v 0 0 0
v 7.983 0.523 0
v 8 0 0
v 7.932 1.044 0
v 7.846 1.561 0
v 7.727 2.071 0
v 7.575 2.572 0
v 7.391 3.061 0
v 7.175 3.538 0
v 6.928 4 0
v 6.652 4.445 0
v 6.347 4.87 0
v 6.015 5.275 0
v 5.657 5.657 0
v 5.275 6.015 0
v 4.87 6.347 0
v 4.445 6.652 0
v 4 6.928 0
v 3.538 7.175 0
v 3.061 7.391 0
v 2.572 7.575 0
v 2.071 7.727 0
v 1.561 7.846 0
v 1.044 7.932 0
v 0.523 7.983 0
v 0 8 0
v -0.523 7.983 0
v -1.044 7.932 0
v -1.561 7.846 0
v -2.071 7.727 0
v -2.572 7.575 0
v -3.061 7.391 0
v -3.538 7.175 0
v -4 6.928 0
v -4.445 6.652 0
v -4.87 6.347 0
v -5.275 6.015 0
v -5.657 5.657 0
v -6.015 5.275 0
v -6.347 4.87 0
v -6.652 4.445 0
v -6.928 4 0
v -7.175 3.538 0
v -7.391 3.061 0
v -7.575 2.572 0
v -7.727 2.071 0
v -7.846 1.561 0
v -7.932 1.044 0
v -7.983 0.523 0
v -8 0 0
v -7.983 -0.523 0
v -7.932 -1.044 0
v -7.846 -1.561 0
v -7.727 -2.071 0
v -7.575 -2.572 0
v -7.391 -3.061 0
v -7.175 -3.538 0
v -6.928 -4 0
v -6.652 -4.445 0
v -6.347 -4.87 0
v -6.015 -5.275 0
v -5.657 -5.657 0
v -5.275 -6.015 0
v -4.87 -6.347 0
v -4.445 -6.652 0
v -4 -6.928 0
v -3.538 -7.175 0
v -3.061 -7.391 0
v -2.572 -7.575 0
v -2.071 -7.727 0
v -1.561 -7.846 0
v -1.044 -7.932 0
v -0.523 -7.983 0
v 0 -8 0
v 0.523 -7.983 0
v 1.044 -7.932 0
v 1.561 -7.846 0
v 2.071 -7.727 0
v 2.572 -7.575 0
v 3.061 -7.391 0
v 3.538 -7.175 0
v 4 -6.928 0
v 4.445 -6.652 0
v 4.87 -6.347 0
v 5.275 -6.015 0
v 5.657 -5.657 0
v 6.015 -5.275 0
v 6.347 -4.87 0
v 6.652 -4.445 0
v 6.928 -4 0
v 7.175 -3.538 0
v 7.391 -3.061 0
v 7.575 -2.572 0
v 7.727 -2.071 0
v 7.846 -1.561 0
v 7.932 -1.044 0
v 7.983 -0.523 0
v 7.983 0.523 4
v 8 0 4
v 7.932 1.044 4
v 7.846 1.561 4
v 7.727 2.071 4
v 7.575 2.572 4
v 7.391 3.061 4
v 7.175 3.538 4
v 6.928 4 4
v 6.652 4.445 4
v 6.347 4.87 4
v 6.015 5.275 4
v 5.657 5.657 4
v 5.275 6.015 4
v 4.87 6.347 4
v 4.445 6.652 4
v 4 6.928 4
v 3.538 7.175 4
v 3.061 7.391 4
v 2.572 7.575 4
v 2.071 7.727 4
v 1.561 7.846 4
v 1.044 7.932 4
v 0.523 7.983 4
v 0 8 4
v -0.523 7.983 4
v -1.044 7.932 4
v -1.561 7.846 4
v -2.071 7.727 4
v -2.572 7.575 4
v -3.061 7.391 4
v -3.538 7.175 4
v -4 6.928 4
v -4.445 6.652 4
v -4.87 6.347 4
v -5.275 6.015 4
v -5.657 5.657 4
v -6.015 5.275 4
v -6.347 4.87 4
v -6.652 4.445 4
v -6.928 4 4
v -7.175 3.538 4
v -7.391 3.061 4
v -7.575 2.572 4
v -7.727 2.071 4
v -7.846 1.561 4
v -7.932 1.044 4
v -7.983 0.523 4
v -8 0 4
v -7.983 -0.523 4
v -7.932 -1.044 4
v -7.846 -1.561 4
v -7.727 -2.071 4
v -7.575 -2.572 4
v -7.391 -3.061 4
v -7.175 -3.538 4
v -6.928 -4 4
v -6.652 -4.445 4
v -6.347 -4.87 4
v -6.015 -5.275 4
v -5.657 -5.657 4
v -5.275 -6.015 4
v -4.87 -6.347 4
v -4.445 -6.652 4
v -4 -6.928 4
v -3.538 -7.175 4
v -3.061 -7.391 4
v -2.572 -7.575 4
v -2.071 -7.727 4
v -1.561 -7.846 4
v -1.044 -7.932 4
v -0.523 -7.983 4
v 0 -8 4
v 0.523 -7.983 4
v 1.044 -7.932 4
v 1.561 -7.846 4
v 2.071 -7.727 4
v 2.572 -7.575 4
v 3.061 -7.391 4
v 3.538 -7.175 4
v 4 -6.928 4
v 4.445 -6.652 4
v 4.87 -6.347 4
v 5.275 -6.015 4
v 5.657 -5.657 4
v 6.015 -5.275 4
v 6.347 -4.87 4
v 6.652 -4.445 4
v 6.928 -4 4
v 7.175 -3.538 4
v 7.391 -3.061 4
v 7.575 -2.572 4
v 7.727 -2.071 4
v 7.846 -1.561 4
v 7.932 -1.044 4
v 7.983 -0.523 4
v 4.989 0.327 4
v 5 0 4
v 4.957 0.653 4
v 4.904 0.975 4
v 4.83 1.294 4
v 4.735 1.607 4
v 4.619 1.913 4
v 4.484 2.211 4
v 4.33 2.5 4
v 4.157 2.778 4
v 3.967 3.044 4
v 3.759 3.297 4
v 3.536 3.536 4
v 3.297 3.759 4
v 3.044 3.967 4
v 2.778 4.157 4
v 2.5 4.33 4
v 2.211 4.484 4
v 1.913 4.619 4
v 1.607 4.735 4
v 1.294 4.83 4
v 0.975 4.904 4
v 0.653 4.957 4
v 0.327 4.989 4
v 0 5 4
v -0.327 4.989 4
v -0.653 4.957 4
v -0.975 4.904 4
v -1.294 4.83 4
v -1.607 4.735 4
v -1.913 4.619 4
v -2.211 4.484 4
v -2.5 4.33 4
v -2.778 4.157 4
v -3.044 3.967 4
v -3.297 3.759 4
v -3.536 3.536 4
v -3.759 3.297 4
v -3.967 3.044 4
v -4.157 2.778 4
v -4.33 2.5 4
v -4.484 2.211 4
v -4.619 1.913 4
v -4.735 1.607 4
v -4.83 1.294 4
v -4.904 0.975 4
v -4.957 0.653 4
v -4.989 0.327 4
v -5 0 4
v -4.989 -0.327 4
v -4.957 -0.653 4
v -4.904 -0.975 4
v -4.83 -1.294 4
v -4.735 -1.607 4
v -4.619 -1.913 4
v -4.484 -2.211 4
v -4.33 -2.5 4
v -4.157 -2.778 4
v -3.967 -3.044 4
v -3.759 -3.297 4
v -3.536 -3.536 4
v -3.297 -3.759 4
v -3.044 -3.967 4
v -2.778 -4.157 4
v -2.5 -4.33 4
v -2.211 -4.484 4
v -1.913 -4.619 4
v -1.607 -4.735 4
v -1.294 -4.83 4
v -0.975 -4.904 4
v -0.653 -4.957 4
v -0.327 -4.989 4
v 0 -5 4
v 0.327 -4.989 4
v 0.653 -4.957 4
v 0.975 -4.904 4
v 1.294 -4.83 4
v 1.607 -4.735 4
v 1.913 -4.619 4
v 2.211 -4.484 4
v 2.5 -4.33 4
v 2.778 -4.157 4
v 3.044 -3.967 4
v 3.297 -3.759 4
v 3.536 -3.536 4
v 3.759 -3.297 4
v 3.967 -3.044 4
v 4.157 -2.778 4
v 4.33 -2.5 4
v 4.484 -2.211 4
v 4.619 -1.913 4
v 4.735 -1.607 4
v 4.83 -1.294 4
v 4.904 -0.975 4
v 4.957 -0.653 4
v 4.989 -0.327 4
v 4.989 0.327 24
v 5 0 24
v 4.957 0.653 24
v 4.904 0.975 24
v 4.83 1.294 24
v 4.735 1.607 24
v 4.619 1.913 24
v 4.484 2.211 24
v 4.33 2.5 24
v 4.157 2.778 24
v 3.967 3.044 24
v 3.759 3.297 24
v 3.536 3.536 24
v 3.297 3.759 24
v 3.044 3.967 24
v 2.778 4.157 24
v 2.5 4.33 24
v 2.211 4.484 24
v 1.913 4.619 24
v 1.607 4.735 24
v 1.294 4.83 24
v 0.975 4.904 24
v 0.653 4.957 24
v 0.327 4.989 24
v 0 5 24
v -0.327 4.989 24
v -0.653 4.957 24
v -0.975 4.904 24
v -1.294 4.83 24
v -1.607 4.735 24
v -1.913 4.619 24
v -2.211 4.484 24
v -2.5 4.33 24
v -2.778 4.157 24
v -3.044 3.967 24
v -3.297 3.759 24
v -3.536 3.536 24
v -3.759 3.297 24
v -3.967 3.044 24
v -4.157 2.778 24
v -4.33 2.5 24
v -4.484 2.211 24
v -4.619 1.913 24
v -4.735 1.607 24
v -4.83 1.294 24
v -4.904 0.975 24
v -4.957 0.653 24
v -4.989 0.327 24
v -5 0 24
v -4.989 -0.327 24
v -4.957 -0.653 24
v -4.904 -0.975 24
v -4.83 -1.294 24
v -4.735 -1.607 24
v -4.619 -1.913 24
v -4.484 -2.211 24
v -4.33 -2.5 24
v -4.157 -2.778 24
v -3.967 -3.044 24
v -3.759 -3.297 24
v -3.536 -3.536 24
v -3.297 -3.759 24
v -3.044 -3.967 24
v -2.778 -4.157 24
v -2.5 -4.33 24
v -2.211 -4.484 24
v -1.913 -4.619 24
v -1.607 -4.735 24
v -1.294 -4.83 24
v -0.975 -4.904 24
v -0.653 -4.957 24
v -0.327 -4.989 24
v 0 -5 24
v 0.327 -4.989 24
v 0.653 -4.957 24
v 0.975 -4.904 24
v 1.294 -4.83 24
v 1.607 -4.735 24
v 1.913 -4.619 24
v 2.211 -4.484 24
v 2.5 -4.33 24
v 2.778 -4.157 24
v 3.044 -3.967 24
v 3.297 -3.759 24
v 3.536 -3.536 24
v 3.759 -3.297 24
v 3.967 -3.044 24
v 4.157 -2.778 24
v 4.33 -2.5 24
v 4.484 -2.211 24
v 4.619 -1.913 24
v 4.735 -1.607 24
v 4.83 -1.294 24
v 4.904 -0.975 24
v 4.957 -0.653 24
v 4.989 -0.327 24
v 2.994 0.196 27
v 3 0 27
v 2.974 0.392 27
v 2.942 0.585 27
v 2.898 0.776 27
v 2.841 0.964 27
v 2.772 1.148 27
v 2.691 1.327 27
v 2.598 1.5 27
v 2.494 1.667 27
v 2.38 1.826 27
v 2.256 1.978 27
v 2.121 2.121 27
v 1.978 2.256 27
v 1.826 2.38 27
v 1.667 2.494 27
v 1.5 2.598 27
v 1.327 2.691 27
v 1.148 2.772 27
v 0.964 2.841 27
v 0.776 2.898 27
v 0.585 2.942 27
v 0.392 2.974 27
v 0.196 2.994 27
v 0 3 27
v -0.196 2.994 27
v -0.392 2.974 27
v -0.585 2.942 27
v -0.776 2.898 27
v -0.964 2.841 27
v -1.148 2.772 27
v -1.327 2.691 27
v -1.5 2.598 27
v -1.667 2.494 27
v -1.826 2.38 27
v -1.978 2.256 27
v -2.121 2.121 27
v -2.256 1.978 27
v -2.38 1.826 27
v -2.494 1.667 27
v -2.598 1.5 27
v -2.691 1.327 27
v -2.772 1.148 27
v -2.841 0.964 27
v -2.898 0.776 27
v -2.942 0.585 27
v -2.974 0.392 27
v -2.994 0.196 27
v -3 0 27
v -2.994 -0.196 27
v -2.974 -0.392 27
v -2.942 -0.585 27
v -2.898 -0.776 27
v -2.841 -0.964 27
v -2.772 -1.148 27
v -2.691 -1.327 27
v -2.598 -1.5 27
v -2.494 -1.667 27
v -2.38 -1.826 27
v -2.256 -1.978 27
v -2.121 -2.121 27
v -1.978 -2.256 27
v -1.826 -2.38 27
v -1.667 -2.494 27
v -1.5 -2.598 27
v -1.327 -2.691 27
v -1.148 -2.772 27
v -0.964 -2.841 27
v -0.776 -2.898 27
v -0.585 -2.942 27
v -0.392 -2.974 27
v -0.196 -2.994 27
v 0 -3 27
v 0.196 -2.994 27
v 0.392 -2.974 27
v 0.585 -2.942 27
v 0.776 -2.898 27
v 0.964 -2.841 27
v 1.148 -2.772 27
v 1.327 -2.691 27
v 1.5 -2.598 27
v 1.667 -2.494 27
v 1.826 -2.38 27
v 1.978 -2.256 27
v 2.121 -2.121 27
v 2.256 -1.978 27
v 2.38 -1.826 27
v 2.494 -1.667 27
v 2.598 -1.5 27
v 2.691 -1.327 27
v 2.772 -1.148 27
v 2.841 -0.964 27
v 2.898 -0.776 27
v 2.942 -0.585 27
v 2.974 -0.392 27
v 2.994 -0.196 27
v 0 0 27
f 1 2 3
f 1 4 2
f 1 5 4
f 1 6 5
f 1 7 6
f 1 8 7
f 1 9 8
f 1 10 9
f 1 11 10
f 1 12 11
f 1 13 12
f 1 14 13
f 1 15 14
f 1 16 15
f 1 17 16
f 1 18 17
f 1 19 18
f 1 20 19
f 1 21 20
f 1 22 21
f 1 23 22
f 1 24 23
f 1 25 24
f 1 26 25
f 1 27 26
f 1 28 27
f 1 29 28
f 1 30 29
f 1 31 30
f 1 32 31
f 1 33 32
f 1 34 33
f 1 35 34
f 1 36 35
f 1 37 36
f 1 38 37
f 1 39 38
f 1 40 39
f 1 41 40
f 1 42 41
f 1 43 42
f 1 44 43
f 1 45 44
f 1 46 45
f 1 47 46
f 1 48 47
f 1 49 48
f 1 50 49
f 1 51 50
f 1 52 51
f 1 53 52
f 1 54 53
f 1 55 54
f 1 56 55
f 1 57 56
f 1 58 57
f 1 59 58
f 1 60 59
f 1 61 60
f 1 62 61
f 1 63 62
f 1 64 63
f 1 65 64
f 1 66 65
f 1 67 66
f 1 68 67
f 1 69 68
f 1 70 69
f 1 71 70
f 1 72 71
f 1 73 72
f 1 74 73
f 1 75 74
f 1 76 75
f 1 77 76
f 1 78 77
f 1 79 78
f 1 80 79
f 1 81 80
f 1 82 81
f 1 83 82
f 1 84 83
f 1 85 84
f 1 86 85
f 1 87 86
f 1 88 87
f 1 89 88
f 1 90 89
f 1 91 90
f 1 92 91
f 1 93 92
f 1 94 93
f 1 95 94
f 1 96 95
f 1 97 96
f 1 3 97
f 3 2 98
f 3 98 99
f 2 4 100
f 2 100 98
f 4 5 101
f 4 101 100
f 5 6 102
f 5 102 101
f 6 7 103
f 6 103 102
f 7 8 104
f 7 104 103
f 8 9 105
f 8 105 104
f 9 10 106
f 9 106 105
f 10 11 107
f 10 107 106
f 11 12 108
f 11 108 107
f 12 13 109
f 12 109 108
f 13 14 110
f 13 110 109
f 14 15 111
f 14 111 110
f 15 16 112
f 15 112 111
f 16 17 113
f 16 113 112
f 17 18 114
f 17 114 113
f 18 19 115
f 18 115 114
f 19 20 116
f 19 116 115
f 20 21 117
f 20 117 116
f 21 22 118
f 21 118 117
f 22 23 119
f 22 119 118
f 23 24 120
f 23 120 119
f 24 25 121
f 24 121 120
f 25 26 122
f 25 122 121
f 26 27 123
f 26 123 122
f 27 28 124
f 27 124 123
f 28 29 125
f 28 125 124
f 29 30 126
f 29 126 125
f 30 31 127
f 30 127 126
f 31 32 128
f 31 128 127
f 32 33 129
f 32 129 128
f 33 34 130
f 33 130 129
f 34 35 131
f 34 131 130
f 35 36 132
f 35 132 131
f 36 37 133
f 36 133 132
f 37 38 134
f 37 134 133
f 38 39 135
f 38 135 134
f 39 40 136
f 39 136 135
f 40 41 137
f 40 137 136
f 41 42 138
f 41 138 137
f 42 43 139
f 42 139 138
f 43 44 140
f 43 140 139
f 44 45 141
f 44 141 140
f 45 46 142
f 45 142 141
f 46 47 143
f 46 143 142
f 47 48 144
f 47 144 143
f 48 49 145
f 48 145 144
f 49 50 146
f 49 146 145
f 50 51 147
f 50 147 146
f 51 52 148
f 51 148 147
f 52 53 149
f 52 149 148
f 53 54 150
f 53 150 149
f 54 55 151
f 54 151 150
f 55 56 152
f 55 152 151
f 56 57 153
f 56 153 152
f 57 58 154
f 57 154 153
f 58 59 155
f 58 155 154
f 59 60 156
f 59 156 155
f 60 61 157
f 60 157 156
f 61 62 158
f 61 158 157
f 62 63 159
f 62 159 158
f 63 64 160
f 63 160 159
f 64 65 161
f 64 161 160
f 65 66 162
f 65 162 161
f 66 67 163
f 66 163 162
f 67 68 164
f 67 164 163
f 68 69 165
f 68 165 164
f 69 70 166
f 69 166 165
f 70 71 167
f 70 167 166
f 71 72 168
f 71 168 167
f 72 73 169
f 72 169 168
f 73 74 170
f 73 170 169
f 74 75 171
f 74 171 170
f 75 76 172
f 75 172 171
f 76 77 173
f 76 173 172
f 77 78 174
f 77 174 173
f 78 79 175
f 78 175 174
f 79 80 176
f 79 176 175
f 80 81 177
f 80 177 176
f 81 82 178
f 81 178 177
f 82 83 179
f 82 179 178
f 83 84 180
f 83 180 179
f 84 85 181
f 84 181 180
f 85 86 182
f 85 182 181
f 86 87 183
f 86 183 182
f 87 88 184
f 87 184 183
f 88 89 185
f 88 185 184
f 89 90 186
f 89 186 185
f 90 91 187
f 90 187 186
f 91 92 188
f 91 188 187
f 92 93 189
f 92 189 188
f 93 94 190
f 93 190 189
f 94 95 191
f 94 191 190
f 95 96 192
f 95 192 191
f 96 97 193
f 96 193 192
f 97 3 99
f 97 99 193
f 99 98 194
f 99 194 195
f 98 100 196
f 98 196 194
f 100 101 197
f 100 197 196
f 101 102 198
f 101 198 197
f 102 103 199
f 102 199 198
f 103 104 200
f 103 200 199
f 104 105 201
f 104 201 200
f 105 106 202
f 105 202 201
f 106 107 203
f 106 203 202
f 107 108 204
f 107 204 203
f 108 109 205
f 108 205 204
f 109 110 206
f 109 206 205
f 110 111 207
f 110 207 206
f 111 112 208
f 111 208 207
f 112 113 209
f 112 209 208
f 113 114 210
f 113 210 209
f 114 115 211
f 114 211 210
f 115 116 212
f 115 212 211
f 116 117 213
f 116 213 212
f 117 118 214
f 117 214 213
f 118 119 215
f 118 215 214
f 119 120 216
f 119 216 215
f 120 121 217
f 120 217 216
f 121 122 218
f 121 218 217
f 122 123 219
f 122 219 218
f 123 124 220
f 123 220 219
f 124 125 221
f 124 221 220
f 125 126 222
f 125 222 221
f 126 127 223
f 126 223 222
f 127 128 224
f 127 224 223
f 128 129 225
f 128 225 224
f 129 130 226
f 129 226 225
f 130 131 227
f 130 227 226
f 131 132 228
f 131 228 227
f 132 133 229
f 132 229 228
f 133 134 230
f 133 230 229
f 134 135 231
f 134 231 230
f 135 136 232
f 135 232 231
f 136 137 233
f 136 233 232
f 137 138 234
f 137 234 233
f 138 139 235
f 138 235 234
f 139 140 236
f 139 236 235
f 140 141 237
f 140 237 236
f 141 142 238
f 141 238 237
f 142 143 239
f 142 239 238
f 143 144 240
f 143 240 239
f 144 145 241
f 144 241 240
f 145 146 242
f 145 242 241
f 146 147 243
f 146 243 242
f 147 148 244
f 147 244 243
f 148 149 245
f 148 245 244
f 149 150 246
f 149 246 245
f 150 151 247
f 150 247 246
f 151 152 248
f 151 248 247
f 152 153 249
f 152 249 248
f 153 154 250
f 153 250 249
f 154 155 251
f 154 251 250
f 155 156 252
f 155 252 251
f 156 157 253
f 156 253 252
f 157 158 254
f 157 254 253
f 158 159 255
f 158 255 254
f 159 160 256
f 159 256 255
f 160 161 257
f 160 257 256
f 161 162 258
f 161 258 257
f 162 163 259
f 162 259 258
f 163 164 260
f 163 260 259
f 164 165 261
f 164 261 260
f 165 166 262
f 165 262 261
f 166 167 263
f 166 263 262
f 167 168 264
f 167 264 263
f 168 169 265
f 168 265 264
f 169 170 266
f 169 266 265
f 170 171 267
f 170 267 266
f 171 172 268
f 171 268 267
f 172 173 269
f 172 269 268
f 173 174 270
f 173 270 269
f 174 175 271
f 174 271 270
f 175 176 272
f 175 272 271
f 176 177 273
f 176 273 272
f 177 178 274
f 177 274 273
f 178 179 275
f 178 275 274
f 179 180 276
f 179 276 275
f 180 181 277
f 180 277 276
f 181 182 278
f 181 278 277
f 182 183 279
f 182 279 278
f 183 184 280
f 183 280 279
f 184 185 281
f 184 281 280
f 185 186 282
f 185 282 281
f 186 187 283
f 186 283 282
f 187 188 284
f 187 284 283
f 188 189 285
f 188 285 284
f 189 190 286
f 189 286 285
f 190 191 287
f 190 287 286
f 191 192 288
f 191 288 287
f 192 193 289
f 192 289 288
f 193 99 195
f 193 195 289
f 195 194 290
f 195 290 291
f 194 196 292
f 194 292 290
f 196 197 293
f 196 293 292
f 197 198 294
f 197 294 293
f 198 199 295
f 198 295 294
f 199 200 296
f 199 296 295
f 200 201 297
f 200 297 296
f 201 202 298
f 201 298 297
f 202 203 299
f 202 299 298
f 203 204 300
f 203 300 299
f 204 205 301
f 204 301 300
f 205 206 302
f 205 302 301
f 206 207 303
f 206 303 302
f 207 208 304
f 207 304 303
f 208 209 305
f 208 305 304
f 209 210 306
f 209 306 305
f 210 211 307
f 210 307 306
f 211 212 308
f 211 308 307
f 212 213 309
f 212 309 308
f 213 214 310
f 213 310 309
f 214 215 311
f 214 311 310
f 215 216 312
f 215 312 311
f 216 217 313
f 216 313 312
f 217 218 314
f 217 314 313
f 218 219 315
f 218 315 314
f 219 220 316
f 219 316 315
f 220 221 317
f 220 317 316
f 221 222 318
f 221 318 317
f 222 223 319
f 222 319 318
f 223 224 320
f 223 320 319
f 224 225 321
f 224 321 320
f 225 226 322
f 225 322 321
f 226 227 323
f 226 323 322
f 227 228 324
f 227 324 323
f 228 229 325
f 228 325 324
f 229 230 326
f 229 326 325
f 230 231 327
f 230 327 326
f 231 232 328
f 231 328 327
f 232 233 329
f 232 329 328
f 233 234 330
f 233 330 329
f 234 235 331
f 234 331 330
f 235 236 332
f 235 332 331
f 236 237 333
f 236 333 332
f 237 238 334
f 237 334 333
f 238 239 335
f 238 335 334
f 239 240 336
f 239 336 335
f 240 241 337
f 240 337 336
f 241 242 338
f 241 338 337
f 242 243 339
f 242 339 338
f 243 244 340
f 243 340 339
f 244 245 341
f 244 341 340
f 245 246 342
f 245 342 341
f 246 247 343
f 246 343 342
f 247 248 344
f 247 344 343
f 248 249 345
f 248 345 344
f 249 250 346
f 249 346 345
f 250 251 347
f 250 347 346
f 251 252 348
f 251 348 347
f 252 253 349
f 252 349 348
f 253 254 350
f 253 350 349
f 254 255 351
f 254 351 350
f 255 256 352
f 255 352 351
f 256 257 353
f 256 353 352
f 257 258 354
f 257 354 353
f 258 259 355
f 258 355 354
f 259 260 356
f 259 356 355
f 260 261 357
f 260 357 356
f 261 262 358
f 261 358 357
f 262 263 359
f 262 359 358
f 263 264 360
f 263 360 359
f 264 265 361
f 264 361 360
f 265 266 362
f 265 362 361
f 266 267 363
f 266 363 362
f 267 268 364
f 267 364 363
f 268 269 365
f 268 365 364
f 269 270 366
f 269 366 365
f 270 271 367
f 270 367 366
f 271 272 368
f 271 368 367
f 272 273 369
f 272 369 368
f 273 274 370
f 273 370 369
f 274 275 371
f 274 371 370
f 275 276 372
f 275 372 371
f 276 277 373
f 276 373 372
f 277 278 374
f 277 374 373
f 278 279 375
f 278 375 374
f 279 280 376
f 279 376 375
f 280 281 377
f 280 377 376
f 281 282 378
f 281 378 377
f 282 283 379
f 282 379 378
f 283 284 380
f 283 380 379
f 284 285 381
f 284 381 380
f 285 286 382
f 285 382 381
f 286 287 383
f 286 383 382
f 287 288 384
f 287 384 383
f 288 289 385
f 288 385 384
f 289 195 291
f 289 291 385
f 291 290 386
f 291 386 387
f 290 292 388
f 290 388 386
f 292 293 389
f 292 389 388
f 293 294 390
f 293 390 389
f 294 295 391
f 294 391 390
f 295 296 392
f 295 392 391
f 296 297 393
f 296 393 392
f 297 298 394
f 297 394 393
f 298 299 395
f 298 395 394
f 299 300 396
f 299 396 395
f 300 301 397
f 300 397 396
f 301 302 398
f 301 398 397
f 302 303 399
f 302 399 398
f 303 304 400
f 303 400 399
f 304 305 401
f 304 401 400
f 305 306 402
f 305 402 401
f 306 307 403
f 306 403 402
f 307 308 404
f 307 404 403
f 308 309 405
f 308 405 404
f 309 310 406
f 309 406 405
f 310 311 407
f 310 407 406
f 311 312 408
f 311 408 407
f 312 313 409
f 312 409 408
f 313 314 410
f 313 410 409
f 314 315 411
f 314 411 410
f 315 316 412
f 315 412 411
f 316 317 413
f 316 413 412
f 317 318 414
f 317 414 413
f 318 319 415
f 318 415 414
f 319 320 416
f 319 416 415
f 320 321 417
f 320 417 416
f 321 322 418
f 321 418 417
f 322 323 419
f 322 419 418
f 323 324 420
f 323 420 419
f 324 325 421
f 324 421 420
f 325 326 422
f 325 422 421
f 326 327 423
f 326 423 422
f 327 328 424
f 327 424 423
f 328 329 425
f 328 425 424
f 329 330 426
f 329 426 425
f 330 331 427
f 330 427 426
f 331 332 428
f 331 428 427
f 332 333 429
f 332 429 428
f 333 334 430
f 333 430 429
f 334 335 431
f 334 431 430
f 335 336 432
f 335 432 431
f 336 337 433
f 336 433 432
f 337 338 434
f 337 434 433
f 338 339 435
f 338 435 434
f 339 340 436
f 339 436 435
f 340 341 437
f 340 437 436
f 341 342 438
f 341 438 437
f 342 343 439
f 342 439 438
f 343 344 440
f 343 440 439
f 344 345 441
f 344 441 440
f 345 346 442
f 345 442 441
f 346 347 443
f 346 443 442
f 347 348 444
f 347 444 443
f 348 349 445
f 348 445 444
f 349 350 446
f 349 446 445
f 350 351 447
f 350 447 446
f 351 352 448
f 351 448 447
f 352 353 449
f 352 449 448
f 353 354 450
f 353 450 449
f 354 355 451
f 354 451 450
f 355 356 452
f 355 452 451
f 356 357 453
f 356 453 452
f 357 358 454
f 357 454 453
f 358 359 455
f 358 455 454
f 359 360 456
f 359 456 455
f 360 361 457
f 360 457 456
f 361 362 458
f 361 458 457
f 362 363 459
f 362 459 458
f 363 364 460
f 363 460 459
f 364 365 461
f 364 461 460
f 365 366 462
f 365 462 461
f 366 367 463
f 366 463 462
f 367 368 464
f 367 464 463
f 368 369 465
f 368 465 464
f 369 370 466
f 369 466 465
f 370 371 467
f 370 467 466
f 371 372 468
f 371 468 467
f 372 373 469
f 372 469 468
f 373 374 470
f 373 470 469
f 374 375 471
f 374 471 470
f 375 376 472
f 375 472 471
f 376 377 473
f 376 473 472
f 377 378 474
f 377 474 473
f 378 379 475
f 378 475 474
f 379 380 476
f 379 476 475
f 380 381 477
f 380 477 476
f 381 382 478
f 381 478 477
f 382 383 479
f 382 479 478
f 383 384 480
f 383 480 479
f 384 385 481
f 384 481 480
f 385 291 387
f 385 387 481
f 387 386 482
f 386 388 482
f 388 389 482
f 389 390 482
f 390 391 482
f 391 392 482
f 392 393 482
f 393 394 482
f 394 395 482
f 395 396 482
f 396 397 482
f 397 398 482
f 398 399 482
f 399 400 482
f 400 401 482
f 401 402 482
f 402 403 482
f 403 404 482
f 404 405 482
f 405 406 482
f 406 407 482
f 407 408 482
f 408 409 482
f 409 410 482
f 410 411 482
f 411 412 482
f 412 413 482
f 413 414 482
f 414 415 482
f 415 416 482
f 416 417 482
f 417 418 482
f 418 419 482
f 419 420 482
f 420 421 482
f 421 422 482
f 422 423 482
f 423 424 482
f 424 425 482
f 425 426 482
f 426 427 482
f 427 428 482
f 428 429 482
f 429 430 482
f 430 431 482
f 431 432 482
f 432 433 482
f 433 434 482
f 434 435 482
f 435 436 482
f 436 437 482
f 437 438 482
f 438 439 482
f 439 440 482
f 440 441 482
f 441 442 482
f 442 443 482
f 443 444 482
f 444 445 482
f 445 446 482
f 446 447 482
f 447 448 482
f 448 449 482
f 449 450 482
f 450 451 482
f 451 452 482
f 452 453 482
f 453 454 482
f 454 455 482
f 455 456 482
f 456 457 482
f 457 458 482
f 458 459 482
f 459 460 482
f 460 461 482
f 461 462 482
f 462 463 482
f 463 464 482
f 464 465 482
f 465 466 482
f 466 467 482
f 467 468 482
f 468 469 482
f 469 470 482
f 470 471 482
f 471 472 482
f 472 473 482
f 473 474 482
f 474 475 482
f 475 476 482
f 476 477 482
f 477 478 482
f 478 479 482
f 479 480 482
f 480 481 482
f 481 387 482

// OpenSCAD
// Original MechIntel educational model. CC0-1.0. Units: mm.
// Not a standardized or load-rated component.
$fn=96;
// Section points: [radius, height], mm. Edit to change the profile.
section=[[0, 0], [8, 0], [8, 4], [5, 4], [5, 24], [3, 27], [0, 27]];
rotate_extrude($fn=96) polygon(points=section);
